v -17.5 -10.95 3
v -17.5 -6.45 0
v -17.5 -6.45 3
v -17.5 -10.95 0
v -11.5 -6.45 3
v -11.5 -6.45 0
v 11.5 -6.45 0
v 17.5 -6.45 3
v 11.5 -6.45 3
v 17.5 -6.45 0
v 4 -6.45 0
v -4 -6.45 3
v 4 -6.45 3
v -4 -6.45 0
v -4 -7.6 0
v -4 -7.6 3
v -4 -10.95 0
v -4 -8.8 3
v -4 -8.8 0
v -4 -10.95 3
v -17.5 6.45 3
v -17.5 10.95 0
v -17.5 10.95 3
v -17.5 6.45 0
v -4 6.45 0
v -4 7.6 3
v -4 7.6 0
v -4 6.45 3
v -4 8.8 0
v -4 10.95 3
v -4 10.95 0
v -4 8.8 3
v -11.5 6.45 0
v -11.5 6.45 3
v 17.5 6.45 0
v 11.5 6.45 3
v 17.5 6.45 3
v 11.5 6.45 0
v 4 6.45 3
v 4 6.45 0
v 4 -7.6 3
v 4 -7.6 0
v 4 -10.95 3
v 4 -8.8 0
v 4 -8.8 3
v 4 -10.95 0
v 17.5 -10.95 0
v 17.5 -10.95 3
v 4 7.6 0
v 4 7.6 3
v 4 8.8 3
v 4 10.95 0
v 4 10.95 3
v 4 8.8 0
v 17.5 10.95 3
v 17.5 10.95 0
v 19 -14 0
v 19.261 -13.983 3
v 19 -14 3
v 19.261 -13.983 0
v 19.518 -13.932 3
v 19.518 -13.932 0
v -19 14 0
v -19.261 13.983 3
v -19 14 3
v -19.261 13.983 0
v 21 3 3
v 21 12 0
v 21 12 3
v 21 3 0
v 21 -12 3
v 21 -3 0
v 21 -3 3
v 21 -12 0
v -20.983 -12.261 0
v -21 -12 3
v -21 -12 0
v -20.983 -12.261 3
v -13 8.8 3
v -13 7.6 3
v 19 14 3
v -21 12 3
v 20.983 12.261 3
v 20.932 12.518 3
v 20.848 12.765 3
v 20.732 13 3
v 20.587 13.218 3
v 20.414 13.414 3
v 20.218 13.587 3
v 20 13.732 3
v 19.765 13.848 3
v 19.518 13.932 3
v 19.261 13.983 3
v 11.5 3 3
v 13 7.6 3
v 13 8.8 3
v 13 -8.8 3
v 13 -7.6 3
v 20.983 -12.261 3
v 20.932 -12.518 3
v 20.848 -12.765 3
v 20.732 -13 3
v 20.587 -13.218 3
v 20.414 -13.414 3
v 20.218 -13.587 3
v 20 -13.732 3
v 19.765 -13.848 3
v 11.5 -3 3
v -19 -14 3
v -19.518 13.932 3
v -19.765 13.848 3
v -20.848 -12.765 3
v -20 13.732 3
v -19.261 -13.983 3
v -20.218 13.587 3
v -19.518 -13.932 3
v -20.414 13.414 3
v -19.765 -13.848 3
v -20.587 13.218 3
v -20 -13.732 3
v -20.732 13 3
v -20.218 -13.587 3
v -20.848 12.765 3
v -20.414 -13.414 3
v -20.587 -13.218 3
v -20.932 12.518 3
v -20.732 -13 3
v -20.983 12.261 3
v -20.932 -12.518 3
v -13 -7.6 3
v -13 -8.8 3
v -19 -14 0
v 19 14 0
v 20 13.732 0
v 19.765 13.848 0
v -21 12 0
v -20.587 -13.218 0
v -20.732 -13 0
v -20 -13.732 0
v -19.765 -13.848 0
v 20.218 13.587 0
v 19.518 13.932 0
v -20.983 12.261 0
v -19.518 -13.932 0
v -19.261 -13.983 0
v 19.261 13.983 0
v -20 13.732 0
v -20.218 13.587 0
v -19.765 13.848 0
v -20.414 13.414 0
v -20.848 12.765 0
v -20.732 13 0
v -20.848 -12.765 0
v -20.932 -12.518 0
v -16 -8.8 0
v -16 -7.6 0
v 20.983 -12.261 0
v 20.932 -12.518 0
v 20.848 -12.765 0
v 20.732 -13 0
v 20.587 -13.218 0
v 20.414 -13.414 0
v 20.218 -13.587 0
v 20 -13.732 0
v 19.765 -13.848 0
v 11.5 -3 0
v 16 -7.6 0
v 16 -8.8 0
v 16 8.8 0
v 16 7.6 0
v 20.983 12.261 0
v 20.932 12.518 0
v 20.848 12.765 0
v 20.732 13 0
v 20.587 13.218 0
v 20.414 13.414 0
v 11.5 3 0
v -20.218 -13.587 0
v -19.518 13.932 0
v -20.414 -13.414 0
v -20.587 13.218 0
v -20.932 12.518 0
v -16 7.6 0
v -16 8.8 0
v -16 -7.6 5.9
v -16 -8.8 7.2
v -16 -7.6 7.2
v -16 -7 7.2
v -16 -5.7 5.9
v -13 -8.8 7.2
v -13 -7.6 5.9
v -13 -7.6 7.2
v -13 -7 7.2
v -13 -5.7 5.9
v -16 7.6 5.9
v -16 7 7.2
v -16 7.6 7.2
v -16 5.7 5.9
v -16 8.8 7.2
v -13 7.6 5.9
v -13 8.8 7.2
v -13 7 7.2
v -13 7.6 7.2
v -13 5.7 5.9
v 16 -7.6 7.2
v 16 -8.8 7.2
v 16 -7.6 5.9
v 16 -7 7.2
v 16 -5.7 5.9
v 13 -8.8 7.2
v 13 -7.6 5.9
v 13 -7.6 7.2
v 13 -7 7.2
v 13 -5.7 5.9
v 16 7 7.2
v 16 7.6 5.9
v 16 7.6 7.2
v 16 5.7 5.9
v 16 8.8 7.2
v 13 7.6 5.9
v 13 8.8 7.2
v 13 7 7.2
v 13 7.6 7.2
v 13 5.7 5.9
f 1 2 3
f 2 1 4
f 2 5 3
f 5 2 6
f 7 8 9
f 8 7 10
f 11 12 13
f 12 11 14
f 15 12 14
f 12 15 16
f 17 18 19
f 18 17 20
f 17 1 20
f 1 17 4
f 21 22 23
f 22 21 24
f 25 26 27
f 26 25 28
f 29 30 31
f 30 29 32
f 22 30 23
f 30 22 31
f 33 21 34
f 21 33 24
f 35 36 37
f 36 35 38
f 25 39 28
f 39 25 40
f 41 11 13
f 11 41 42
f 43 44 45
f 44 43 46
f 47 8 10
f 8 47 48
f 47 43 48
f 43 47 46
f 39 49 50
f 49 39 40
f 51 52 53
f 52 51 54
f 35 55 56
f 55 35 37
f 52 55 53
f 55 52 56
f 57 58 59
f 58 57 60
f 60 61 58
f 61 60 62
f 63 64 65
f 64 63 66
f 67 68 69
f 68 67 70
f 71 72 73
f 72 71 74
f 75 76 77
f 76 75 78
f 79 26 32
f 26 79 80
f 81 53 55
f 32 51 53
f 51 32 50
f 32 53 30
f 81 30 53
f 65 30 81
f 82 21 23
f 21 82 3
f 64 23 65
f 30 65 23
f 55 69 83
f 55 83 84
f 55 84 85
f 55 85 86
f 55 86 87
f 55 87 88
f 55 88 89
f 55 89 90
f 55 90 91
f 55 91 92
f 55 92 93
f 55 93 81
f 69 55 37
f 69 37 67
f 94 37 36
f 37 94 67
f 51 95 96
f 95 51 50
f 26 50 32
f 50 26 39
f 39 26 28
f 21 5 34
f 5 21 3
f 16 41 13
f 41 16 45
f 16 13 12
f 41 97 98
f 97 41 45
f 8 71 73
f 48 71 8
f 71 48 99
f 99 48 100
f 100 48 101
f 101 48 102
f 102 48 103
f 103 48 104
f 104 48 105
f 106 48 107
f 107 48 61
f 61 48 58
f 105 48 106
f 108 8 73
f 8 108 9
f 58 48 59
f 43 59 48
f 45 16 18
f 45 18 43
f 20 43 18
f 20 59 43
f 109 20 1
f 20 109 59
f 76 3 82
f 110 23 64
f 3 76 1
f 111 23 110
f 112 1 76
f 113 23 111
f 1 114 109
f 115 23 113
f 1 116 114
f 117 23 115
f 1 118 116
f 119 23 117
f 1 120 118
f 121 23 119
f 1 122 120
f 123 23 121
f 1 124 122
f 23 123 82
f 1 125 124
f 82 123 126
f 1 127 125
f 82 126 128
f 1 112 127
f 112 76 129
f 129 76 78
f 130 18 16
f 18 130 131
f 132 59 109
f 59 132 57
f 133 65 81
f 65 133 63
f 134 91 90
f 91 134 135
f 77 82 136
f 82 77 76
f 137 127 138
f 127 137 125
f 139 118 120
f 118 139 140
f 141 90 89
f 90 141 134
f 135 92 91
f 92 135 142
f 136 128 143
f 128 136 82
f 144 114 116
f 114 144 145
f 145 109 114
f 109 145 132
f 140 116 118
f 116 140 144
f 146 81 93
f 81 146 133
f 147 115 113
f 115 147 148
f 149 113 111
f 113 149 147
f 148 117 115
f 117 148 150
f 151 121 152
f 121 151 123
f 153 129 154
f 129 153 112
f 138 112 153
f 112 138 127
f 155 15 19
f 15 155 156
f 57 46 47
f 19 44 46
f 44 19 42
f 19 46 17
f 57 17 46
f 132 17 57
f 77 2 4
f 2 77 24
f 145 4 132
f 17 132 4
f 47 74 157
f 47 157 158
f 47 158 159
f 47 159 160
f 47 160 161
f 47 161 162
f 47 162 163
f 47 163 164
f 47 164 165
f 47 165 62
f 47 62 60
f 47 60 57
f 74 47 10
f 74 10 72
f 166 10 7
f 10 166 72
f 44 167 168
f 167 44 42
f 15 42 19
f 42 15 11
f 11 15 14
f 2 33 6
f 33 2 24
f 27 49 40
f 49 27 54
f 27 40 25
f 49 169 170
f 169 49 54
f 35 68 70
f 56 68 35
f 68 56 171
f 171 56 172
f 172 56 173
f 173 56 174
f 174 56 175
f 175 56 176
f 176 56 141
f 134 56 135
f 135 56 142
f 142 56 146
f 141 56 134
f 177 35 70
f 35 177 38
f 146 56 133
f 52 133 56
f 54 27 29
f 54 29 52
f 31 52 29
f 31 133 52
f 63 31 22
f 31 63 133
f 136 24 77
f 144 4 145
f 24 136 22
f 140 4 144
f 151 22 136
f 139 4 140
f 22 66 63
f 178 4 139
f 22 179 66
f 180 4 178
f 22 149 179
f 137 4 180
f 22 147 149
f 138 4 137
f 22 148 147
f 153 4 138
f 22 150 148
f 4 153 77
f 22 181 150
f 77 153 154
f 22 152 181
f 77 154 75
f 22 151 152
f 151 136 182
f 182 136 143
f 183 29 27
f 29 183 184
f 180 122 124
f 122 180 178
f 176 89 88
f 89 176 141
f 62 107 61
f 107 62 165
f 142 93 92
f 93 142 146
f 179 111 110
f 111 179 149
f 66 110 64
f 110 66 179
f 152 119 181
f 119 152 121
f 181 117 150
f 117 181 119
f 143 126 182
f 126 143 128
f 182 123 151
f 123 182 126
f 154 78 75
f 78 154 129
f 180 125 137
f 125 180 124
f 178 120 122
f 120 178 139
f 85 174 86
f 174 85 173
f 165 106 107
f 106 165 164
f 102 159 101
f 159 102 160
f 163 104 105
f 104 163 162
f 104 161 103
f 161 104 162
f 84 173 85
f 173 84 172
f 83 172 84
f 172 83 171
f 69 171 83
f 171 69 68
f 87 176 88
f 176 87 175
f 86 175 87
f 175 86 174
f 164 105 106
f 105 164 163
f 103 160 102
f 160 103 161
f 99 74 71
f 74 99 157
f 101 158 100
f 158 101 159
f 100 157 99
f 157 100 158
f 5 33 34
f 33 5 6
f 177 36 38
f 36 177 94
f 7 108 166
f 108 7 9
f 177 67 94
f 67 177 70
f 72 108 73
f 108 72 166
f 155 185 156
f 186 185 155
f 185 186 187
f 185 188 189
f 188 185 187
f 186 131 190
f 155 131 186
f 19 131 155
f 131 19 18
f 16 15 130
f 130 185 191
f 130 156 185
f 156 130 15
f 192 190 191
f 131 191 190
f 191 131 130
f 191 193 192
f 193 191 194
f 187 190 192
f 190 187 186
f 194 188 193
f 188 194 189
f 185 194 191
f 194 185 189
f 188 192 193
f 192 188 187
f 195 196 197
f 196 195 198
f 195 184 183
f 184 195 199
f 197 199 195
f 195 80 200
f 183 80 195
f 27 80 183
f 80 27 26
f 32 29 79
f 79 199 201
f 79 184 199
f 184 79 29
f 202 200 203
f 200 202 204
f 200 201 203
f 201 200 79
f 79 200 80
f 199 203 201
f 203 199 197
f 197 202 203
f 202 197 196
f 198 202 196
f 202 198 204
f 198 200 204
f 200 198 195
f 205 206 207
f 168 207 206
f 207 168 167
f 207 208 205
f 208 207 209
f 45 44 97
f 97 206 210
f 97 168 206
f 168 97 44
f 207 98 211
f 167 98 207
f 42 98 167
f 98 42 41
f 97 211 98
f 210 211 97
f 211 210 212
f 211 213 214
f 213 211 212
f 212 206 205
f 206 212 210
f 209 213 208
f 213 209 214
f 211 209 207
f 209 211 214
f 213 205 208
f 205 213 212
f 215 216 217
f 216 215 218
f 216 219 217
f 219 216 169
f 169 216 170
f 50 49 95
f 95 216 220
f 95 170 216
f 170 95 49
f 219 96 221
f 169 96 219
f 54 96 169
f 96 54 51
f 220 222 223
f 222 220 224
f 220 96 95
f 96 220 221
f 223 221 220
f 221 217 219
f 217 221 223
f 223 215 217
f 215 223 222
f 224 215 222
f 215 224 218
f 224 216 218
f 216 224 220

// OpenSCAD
// Screw-free cable-entry prototype. Units mm. No measured strength claim.
// Body opening retains the owner's successful two-dot gauge dimensions.
$fn=48;
body_l=23; body_w=12.9; plate=3;
cable_gap=6; ear_clearance=2.9;
// Four in-plane cantilevers: 12mm free length, 1.2mm bending thickness.
module finger(sx,sy) {
 mirror([sx<0?1:0,0,0]) mirror([0,sy<0?1:0,0]) {
  translate([2,7.6,0]) cube([14,1.2,plate]);
  translate([13,7.6,0]) cube([3,1.2,7.2]);
  // Flat retaining underside, sloped lead-in on top; short 1.9mm overhang.
  translate([13,0,0]) rotate([90,0,90]) linear_extrude(3)
   polygon([[5.7,5.9],[8.8,5.9],[8.8,7.2],[7,7.2],[5.7,5.9]]);
 }
}
union() {
 difference() {
  linear_extrude(plate) offset(r=2) offset(delta=-2) square([42,28],center=true);
  translate([-body_l/2,-body_w/2,-.1]) cube([body_l,body_w,plate+.2]);
  // Side-entry channel: cable drops in sideways; connector stays attached.
  translate([body_l/2-.1,-cable_gap/2,-.1]) cube([10,cable_gap,plate+.2]);
  // Isolate flexible beams from the frame, leaving their central roots attached.
  for(sx=[-1,1],sy=[-1,1])
   mirror([sx<0?1:0,0,0]) mirror([0,sy<0?1:0,0])
    translate([4,6.45,-.1]) cube([13.5,4.5,plate+.2]);
 }
 for(sx=[-1,1],sy=[-1,1]) finger(sx,sy);
}
assert(body_l==23 && body_w==12.9);
assert(plate+ear_clearance==5.9);
